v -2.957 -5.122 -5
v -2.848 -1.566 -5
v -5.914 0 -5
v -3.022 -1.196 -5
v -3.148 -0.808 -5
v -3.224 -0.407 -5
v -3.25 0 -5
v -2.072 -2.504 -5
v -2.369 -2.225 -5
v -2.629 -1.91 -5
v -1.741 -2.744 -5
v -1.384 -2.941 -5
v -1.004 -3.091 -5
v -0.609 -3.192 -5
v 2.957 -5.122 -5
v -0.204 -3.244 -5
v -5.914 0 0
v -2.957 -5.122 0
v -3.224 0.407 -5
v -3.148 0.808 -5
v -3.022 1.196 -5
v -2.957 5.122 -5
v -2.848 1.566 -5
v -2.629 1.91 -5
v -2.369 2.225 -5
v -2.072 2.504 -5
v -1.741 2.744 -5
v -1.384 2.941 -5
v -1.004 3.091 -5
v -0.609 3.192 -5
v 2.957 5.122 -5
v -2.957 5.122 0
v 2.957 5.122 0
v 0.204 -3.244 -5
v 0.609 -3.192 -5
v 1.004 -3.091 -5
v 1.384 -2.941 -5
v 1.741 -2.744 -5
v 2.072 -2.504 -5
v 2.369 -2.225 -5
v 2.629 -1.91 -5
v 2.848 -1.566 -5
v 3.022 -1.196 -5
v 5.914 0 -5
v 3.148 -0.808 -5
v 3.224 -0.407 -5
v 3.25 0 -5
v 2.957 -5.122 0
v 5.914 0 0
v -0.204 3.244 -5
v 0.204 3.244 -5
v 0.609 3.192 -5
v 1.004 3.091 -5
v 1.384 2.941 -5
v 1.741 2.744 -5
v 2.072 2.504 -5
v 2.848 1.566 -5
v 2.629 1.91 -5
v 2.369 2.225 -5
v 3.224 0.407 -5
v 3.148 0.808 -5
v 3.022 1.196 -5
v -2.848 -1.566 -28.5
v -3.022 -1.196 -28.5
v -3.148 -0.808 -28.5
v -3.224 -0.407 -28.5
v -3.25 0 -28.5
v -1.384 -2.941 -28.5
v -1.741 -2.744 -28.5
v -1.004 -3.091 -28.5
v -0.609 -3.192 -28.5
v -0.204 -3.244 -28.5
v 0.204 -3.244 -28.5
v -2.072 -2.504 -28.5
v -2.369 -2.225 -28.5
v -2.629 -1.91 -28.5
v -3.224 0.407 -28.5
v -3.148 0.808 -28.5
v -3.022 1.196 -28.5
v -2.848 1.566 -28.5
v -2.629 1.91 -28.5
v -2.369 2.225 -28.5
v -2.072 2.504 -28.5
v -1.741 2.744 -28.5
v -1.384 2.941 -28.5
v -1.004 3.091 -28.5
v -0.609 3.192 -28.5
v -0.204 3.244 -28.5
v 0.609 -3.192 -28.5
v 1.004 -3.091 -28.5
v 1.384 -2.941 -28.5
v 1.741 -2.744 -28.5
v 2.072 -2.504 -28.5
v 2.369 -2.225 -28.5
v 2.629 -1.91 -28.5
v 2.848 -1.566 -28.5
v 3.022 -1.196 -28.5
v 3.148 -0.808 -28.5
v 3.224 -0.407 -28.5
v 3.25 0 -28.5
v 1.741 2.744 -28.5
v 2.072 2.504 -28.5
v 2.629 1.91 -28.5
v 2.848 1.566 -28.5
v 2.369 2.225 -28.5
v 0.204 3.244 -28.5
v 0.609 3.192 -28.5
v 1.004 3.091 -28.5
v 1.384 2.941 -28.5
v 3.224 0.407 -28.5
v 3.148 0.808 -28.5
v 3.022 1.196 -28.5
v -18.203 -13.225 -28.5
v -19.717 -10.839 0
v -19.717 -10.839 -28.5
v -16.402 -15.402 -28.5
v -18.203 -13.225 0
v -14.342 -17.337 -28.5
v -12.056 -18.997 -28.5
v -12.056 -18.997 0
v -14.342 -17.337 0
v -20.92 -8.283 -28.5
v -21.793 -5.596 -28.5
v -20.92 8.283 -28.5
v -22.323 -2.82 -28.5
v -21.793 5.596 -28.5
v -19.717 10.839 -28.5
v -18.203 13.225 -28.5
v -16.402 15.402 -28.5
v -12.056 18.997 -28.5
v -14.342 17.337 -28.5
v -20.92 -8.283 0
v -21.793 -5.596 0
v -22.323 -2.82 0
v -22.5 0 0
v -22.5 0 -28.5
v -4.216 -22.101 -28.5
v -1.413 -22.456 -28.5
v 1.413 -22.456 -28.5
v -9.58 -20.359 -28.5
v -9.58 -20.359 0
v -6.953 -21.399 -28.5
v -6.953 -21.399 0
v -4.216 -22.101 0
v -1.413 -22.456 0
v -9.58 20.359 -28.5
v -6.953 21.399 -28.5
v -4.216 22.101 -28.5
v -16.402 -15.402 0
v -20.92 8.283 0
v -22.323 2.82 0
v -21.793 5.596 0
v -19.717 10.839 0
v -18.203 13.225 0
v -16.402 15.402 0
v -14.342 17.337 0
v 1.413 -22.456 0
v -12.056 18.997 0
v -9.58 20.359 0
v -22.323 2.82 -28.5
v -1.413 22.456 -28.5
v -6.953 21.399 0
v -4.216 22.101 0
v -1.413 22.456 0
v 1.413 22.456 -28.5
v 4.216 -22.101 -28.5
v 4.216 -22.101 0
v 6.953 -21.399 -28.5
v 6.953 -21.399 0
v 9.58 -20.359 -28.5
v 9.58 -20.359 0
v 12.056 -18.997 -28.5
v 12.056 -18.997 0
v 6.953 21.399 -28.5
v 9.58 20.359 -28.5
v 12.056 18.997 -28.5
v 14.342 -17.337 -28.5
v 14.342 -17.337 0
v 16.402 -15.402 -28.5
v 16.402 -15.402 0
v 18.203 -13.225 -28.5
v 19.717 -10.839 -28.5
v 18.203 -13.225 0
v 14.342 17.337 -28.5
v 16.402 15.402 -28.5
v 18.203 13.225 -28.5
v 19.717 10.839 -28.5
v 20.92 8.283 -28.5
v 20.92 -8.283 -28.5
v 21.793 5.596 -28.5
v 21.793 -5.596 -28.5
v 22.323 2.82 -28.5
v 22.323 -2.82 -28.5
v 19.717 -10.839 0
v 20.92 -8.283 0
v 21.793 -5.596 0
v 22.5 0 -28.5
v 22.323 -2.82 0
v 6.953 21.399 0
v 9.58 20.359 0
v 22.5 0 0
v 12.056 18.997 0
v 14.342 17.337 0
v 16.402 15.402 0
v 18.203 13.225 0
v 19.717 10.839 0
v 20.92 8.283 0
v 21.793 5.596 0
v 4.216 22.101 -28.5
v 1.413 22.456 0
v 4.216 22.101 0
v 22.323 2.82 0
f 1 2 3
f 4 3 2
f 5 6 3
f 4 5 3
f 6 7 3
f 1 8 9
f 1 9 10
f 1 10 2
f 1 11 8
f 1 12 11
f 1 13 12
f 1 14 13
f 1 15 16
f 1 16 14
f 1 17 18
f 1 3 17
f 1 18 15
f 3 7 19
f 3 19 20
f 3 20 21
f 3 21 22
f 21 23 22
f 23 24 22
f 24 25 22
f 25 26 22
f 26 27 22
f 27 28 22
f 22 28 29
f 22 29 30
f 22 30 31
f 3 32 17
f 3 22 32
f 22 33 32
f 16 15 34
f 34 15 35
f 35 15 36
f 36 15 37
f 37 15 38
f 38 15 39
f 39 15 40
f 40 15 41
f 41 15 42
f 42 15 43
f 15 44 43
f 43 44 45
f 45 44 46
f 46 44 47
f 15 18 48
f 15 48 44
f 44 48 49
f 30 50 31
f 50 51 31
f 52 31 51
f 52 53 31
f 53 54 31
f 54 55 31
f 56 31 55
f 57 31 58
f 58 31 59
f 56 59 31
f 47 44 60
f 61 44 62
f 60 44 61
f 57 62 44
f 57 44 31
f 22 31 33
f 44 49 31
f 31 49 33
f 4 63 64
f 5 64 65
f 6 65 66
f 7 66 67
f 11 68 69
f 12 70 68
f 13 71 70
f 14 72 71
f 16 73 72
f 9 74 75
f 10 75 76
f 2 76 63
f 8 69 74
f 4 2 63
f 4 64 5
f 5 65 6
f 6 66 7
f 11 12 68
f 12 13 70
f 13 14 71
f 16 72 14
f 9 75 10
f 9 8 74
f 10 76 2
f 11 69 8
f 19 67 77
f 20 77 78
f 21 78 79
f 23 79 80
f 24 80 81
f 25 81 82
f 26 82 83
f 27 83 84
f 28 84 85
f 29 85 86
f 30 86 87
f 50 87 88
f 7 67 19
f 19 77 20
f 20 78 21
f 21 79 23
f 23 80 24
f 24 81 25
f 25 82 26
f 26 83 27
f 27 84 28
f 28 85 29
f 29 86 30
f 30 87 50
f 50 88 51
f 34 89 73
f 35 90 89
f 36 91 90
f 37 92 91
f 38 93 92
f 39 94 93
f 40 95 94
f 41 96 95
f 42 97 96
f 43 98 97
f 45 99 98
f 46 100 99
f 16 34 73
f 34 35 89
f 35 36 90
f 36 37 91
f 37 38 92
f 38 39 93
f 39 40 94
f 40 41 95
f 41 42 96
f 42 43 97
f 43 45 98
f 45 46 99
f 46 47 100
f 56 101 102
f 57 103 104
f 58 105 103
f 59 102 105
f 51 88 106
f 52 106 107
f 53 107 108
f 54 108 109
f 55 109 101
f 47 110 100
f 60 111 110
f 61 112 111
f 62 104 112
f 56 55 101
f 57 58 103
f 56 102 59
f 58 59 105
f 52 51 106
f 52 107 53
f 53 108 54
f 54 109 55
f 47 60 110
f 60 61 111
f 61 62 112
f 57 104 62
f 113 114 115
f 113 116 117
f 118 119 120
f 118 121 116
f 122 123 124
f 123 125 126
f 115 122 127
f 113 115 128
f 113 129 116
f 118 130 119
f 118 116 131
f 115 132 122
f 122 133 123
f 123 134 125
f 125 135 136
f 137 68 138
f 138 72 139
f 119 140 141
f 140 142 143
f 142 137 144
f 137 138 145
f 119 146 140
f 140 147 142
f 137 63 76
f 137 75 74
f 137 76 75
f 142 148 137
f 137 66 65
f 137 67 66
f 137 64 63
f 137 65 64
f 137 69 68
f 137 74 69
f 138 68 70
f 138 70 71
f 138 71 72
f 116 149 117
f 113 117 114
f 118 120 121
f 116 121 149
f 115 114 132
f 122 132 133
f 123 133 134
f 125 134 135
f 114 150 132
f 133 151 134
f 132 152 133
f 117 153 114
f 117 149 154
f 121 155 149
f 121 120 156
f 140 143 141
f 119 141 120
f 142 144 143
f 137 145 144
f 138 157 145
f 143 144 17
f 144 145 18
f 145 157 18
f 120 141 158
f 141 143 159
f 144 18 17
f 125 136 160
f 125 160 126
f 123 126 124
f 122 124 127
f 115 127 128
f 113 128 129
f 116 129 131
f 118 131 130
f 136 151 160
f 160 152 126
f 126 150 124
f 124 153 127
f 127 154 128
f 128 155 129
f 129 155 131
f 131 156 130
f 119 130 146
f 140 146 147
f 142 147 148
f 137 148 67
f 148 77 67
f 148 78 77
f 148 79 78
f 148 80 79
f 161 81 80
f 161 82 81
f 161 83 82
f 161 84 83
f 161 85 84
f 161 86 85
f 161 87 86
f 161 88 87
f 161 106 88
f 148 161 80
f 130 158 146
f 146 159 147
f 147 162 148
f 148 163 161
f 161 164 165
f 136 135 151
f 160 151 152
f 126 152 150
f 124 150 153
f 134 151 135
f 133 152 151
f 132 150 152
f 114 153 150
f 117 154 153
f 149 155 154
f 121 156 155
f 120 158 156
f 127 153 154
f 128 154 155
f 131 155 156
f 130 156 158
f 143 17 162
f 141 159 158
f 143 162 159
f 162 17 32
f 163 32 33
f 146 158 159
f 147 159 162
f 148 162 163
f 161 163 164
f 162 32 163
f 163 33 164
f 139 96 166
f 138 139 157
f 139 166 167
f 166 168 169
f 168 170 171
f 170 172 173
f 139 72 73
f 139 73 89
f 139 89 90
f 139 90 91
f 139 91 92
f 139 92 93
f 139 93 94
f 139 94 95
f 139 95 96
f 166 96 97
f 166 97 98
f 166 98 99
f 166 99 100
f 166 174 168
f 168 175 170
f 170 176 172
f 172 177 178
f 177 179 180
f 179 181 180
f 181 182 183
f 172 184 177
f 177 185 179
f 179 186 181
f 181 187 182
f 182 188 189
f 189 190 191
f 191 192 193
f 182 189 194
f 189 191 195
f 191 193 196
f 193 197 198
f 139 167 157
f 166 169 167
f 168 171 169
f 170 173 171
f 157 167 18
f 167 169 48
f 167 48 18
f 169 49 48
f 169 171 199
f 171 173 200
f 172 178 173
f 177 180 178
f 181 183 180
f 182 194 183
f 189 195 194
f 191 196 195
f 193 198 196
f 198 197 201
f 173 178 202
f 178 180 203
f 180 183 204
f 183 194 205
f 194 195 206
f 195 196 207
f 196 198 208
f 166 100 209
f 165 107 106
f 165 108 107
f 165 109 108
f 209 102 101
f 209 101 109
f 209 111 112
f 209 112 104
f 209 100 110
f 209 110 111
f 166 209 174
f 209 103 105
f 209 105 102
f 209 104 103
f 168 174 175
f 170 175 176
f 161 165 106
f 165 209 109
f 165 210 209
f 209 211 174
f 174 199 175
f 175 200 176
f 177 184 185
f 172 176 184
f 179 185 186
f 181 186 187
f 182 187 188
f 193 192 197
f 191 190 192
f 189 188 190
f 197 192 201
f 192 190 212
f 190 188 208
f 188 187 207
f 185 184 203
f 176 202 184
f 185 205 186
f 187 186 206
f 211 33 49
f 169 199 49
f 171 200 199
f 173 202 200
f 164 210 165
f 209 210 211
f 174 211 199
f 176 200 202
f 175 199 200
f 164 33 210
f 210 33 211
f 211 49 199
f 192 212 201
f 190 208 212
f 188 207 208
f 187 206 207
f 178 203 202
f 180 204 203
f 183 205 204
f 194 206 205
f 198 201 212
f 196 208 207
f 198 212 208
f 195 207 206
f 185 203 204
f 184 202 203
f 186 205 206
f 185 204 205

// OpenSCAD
$fn = 50;

difference() {
	union() {
		translate(v = [0, 0, -28.5]) {
			cylinder(h = 28.5, r = 22.5);
		}
	}
	union() {
		translate(v = [0, 0, 0]) {
			rotate(a = [0, 0, 0]) {
				difference() {
					union() {
						translate(v = [0, 0, -5]) {
							linear_extrude(height = 5) {
								polygon(points = [[5.914249999999999, 0.0], [2.957125, 5.1218907443321156], [-2.9571249999999982, 5.1218907443321156], [-5.914249999999999, 7.242867331857232e-16], [-2.9571250000000022, -5.121890744332115], [2.9571249999999956, -5.121890744332118]]);
							}
						}
					}
					union();
				}
			}
		}
		#translate(v = [0, 0, -100.0]) {
			cylinder(h = 200, r = 3.25);
		}
	}
}
